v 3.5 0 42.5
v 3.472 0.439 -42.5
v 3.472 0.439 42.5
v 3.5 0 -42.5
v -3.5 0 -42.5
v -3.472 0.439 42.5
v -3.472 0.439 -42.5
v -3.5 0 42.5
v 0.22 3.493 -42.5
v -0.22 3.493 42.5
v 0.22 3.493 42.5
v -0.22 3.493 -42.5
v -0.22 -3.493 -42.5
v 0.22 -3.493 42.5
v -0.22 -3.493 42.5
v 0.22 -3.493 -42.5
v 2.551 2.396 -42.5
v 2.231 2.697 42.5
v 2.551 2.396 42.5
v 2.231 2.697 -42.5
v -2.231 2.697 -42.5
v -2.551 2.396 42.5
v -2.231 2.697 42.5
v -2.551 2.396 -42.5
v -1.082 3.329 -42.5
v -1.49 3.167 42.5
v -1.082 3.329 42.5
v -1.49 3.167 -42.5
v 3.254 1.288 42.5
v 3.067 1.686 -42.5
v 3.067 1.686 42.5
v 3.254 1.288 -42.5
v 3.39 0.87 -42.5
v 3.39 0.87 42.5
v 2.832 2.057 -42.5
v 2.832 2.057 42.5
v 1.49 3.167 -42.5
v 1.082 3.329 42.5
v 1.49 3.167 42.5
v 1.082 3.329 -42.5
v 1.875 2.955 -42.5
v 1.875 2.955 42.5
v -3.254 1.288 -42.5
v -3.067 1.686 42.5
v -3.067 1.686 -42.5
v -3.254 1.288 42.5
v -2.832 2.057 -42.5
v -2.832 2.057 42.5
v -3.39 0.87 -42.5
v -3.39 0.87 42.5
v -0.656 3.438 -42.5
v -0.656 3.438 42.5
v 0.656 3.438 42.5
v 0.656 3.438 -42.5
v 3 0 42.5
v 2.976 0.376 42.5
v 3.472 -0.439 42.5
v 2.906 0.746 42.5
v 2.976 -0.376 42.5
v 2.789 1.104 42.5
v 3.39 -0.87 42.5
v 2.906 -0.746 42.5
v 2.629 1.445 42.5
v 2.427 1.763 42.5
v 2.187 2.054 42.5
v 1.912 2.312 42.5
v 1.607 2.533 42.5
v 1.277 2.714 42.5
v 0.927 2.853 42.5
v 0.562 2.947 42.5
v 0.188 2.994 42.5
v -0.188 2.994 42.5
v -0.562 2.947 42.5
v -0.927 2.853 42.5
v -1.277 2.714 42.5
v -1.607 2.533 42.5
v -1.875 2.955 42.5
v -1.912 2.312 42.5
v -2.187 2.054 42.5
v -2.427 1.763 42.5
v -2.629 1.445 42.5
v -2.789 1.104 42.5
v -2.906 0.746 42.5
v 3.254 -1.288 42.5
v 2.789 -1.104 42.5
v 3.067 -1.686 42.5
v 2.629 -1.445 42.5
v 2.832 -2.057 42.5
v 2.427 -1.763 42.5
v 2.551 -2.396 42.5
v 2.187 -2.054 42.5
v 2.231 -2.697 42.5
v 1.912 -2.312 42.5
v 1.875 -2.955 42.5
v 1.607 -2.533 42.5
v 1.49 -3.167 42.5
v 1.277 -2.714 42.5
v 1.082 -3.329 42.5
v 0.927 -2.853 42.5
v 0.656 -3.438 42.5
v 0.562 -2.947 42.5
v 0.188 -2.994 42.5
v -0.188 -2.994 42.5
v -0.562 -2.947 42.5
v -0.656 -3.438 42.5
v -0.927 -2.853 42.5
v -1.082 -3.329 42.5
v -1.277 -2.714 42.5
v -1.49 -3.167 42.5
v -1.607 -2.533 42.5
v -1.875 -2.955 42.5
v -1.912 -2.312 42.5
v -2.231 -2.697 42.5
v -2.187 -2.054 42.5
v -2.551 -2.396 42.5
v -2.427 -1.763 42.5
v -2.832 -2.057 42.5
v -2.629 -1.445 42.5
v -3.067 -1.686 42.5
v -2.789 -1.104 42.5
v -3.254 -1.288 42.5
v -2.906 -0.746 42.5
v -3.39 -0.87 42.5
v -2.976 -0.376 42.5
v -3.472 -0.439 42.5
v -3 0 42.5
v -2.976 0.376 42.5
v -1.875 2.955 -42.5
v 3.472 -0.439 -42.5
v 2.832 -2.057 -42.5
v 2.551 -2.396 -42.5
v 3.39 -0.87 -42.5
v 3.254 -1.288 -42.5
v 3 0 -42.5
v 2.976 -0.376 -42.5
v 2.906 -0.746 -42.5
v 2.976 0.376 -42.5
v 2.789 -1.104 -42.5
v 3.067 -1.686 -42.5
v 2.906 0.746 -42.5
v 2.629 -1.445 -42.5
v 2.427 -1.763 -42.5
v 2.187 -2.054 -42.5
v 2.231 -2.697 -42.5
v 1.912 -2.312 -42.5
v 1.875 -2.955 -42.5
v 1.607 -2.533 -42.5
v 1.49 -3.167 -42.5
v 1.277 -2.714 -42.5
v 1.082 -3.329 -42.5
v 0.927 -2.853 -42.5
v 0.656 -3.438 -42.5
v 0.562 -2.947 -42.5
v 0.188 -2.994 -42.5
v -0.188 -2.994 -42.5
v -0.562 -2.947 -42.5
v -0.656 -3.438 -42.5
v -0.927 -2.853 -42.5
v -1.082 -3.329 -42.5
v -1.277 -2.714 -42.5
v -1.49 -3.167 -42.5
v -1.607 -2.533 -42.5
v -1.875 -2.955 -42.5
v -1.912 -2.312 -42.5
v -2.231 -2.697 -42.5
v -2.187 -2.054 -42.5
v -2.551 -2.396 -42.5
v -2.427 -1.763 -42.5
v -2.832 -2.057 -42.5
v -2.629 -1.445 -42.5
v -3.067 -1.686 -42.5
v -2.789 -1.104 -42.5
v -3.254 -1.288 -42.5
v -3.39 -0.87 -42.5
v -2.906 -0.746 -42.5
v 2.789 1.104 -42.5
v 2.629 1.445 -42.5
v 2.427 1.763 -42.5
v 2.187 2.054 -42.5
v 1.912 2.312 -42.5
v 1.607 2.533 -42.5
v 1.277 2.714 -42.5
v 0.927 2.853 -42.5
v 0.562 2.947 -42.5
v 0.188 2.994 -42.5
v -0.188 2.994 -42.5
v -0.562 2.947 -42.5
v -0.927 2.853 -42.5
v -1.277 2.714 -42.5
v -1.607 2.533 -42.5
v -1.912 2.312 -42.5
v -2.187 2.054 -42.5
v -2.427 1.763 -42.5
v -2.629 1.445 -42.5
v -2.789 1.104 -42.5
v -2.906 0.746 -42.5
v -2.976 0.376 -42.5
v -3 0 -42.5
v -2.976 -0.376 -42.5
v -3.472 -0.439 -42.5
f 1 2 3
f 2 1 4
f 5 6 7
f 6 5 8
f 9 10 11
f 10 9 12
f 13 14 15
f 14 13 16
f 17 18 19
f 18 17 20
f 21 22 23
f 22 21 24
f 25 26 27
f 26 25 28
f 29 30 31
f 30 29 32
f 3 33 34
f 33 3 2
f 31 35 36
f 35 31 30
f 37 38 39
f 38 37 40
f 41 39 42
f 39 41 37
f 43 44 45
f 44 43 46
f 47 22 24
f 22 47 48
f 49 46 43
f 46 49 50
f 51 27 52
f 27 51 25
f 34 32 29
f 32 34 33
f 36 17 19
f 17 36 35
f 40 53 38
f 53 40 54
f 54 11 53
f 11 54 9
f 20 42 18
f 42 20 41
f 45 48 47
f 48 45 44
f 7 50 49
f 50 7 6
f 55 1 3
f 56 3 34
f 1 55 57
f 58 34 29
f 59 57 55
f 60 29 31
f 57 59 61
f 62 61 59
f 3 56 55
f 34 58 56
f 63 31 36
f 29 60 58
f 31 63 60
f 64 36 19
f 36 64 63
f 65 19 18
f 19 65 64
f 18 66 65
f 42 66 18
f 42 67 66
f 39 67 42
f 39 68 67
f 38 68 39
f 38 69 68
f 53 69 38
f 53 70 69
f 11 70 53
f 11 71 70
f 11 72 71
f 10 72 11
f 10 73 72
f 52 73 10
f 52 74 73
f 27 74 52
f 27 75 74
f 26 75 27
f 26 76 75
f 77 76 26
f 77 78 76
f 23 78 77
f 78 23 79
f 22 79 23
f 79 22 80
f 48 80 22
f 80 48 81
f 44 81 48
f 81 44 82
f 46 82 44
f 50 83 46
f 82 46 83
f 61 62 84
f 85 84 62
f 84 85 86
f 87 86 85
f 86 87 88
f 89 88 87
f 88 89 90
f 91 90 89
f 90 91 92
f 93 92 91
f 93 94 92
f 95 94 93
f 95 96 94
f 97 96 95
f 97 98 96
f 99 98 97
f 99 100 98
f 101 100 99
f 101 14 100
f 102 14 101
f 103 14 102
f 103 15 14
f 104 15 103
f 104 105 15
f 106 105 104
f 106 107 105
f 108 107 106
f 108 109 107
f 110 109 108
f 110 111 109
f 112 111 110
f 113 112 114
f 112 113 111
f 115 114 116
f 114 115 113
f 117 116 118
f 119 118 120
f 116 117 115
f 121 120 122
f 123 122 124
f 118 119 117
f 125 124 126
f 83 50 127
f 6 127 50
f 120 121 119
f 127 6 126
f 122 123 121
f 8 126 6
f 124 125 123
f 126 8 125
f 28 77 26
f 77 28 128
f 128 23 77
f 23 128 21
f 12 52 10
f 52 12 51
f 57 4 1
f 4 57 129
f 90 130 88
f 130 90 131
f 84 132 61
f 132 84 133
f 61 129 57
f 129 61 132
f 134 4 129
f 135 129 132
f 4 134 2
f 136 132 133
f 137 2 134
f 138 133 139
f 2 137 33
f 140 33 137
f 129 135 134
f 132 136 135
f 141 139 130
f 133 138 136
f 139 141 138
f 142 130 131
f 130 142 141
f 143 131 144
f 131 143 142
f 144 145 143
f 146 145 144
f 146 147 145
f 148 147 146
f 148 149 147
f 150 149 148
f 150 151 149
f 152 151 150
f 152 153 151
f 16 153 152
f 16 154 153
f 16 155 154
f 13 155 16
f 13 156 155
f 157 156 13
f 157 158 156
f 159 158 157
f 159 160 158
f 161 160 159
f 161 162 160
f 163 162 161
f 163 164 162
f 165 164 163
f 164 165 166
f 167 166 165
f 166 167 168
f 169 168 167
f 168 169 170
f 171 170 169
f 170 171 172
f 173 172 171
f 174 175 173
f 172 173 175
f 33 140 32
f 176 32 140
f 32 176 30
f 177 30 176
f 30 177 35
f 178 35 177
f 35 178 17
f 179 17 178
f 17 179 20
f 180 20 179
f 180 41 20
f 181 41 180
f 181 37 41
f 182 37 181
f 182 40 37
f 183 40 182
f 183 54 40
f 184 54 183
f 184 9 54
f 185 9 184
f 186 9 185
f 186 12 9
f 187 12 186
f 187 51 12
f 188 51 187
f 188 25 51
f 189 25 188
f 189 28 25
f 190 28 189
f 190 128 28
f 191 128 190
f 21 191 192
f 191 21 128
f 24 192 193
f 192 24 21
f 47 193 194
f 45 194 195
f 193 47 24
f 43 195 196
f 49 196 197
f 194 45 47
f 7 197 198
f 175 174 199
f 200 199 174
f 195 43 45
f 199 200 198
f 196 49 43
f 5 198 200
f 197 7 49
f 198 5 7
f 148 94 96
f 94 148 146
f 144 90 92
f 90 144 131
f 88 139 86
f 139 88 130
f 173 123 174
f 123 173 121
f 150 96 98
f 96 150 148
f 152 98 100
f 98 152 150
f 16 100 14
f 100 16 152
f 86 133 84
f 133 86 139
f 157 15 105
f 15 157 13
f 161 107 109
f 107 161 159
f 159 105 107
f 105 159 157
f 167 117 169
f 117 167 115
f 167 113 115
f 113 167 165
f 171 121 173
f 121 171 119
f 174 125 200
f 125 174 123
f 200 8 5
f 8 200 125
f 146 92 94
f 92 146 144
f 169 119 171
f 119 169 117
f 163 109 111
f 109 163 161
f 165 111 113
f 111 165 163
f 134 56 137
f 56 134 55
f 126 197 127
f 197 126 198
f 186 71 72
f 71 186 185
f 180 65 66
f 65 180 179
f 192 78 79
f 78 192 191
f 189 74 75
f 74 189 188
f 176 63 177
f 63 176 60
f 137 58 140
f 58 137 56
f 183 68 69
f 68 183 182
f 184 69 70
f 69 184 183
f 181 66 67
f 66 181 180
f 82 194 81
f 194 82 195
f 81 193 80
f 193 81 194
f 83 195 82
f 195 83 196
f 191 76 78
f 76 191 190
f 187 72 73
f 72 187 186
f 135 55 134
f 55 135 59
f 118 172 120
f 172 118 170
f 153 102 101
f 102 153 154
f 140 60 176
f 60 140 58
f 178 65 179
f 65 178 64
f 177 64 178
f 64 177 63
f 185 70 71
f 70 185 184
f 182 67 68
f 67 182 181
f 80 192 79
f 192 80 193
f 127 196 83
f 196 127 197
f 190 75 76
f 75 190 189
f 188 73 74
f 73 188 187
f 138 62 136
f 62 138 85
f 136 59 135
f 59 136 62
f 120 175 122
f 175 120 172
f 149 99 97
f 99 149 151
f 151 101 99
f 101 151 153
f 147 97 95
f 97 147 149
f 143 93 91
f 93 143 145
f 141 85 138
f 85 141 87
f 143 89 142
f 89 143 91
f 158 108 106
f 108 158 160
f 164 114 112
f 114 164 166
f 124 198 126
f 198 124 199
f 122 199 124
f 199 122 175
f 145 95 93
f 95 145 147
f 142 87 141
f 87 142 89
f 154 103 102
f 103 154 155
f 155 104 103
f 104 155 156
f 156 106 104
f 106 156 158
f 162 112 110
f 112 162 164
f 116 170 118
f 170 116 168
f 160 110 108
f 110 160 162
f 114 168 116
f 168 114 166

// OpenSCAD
$fn = 50;


difference() {
	union() {
		translate(v = [0, 0, -42.5000000000]) {
			cylinder(h = 85, r = 3.5000000000);
		}
	}
	union() {
		translate(v = [0, 0, -100.0000000000]) {
			cylinder(h = 200, r = 3);
		}
	}
}
